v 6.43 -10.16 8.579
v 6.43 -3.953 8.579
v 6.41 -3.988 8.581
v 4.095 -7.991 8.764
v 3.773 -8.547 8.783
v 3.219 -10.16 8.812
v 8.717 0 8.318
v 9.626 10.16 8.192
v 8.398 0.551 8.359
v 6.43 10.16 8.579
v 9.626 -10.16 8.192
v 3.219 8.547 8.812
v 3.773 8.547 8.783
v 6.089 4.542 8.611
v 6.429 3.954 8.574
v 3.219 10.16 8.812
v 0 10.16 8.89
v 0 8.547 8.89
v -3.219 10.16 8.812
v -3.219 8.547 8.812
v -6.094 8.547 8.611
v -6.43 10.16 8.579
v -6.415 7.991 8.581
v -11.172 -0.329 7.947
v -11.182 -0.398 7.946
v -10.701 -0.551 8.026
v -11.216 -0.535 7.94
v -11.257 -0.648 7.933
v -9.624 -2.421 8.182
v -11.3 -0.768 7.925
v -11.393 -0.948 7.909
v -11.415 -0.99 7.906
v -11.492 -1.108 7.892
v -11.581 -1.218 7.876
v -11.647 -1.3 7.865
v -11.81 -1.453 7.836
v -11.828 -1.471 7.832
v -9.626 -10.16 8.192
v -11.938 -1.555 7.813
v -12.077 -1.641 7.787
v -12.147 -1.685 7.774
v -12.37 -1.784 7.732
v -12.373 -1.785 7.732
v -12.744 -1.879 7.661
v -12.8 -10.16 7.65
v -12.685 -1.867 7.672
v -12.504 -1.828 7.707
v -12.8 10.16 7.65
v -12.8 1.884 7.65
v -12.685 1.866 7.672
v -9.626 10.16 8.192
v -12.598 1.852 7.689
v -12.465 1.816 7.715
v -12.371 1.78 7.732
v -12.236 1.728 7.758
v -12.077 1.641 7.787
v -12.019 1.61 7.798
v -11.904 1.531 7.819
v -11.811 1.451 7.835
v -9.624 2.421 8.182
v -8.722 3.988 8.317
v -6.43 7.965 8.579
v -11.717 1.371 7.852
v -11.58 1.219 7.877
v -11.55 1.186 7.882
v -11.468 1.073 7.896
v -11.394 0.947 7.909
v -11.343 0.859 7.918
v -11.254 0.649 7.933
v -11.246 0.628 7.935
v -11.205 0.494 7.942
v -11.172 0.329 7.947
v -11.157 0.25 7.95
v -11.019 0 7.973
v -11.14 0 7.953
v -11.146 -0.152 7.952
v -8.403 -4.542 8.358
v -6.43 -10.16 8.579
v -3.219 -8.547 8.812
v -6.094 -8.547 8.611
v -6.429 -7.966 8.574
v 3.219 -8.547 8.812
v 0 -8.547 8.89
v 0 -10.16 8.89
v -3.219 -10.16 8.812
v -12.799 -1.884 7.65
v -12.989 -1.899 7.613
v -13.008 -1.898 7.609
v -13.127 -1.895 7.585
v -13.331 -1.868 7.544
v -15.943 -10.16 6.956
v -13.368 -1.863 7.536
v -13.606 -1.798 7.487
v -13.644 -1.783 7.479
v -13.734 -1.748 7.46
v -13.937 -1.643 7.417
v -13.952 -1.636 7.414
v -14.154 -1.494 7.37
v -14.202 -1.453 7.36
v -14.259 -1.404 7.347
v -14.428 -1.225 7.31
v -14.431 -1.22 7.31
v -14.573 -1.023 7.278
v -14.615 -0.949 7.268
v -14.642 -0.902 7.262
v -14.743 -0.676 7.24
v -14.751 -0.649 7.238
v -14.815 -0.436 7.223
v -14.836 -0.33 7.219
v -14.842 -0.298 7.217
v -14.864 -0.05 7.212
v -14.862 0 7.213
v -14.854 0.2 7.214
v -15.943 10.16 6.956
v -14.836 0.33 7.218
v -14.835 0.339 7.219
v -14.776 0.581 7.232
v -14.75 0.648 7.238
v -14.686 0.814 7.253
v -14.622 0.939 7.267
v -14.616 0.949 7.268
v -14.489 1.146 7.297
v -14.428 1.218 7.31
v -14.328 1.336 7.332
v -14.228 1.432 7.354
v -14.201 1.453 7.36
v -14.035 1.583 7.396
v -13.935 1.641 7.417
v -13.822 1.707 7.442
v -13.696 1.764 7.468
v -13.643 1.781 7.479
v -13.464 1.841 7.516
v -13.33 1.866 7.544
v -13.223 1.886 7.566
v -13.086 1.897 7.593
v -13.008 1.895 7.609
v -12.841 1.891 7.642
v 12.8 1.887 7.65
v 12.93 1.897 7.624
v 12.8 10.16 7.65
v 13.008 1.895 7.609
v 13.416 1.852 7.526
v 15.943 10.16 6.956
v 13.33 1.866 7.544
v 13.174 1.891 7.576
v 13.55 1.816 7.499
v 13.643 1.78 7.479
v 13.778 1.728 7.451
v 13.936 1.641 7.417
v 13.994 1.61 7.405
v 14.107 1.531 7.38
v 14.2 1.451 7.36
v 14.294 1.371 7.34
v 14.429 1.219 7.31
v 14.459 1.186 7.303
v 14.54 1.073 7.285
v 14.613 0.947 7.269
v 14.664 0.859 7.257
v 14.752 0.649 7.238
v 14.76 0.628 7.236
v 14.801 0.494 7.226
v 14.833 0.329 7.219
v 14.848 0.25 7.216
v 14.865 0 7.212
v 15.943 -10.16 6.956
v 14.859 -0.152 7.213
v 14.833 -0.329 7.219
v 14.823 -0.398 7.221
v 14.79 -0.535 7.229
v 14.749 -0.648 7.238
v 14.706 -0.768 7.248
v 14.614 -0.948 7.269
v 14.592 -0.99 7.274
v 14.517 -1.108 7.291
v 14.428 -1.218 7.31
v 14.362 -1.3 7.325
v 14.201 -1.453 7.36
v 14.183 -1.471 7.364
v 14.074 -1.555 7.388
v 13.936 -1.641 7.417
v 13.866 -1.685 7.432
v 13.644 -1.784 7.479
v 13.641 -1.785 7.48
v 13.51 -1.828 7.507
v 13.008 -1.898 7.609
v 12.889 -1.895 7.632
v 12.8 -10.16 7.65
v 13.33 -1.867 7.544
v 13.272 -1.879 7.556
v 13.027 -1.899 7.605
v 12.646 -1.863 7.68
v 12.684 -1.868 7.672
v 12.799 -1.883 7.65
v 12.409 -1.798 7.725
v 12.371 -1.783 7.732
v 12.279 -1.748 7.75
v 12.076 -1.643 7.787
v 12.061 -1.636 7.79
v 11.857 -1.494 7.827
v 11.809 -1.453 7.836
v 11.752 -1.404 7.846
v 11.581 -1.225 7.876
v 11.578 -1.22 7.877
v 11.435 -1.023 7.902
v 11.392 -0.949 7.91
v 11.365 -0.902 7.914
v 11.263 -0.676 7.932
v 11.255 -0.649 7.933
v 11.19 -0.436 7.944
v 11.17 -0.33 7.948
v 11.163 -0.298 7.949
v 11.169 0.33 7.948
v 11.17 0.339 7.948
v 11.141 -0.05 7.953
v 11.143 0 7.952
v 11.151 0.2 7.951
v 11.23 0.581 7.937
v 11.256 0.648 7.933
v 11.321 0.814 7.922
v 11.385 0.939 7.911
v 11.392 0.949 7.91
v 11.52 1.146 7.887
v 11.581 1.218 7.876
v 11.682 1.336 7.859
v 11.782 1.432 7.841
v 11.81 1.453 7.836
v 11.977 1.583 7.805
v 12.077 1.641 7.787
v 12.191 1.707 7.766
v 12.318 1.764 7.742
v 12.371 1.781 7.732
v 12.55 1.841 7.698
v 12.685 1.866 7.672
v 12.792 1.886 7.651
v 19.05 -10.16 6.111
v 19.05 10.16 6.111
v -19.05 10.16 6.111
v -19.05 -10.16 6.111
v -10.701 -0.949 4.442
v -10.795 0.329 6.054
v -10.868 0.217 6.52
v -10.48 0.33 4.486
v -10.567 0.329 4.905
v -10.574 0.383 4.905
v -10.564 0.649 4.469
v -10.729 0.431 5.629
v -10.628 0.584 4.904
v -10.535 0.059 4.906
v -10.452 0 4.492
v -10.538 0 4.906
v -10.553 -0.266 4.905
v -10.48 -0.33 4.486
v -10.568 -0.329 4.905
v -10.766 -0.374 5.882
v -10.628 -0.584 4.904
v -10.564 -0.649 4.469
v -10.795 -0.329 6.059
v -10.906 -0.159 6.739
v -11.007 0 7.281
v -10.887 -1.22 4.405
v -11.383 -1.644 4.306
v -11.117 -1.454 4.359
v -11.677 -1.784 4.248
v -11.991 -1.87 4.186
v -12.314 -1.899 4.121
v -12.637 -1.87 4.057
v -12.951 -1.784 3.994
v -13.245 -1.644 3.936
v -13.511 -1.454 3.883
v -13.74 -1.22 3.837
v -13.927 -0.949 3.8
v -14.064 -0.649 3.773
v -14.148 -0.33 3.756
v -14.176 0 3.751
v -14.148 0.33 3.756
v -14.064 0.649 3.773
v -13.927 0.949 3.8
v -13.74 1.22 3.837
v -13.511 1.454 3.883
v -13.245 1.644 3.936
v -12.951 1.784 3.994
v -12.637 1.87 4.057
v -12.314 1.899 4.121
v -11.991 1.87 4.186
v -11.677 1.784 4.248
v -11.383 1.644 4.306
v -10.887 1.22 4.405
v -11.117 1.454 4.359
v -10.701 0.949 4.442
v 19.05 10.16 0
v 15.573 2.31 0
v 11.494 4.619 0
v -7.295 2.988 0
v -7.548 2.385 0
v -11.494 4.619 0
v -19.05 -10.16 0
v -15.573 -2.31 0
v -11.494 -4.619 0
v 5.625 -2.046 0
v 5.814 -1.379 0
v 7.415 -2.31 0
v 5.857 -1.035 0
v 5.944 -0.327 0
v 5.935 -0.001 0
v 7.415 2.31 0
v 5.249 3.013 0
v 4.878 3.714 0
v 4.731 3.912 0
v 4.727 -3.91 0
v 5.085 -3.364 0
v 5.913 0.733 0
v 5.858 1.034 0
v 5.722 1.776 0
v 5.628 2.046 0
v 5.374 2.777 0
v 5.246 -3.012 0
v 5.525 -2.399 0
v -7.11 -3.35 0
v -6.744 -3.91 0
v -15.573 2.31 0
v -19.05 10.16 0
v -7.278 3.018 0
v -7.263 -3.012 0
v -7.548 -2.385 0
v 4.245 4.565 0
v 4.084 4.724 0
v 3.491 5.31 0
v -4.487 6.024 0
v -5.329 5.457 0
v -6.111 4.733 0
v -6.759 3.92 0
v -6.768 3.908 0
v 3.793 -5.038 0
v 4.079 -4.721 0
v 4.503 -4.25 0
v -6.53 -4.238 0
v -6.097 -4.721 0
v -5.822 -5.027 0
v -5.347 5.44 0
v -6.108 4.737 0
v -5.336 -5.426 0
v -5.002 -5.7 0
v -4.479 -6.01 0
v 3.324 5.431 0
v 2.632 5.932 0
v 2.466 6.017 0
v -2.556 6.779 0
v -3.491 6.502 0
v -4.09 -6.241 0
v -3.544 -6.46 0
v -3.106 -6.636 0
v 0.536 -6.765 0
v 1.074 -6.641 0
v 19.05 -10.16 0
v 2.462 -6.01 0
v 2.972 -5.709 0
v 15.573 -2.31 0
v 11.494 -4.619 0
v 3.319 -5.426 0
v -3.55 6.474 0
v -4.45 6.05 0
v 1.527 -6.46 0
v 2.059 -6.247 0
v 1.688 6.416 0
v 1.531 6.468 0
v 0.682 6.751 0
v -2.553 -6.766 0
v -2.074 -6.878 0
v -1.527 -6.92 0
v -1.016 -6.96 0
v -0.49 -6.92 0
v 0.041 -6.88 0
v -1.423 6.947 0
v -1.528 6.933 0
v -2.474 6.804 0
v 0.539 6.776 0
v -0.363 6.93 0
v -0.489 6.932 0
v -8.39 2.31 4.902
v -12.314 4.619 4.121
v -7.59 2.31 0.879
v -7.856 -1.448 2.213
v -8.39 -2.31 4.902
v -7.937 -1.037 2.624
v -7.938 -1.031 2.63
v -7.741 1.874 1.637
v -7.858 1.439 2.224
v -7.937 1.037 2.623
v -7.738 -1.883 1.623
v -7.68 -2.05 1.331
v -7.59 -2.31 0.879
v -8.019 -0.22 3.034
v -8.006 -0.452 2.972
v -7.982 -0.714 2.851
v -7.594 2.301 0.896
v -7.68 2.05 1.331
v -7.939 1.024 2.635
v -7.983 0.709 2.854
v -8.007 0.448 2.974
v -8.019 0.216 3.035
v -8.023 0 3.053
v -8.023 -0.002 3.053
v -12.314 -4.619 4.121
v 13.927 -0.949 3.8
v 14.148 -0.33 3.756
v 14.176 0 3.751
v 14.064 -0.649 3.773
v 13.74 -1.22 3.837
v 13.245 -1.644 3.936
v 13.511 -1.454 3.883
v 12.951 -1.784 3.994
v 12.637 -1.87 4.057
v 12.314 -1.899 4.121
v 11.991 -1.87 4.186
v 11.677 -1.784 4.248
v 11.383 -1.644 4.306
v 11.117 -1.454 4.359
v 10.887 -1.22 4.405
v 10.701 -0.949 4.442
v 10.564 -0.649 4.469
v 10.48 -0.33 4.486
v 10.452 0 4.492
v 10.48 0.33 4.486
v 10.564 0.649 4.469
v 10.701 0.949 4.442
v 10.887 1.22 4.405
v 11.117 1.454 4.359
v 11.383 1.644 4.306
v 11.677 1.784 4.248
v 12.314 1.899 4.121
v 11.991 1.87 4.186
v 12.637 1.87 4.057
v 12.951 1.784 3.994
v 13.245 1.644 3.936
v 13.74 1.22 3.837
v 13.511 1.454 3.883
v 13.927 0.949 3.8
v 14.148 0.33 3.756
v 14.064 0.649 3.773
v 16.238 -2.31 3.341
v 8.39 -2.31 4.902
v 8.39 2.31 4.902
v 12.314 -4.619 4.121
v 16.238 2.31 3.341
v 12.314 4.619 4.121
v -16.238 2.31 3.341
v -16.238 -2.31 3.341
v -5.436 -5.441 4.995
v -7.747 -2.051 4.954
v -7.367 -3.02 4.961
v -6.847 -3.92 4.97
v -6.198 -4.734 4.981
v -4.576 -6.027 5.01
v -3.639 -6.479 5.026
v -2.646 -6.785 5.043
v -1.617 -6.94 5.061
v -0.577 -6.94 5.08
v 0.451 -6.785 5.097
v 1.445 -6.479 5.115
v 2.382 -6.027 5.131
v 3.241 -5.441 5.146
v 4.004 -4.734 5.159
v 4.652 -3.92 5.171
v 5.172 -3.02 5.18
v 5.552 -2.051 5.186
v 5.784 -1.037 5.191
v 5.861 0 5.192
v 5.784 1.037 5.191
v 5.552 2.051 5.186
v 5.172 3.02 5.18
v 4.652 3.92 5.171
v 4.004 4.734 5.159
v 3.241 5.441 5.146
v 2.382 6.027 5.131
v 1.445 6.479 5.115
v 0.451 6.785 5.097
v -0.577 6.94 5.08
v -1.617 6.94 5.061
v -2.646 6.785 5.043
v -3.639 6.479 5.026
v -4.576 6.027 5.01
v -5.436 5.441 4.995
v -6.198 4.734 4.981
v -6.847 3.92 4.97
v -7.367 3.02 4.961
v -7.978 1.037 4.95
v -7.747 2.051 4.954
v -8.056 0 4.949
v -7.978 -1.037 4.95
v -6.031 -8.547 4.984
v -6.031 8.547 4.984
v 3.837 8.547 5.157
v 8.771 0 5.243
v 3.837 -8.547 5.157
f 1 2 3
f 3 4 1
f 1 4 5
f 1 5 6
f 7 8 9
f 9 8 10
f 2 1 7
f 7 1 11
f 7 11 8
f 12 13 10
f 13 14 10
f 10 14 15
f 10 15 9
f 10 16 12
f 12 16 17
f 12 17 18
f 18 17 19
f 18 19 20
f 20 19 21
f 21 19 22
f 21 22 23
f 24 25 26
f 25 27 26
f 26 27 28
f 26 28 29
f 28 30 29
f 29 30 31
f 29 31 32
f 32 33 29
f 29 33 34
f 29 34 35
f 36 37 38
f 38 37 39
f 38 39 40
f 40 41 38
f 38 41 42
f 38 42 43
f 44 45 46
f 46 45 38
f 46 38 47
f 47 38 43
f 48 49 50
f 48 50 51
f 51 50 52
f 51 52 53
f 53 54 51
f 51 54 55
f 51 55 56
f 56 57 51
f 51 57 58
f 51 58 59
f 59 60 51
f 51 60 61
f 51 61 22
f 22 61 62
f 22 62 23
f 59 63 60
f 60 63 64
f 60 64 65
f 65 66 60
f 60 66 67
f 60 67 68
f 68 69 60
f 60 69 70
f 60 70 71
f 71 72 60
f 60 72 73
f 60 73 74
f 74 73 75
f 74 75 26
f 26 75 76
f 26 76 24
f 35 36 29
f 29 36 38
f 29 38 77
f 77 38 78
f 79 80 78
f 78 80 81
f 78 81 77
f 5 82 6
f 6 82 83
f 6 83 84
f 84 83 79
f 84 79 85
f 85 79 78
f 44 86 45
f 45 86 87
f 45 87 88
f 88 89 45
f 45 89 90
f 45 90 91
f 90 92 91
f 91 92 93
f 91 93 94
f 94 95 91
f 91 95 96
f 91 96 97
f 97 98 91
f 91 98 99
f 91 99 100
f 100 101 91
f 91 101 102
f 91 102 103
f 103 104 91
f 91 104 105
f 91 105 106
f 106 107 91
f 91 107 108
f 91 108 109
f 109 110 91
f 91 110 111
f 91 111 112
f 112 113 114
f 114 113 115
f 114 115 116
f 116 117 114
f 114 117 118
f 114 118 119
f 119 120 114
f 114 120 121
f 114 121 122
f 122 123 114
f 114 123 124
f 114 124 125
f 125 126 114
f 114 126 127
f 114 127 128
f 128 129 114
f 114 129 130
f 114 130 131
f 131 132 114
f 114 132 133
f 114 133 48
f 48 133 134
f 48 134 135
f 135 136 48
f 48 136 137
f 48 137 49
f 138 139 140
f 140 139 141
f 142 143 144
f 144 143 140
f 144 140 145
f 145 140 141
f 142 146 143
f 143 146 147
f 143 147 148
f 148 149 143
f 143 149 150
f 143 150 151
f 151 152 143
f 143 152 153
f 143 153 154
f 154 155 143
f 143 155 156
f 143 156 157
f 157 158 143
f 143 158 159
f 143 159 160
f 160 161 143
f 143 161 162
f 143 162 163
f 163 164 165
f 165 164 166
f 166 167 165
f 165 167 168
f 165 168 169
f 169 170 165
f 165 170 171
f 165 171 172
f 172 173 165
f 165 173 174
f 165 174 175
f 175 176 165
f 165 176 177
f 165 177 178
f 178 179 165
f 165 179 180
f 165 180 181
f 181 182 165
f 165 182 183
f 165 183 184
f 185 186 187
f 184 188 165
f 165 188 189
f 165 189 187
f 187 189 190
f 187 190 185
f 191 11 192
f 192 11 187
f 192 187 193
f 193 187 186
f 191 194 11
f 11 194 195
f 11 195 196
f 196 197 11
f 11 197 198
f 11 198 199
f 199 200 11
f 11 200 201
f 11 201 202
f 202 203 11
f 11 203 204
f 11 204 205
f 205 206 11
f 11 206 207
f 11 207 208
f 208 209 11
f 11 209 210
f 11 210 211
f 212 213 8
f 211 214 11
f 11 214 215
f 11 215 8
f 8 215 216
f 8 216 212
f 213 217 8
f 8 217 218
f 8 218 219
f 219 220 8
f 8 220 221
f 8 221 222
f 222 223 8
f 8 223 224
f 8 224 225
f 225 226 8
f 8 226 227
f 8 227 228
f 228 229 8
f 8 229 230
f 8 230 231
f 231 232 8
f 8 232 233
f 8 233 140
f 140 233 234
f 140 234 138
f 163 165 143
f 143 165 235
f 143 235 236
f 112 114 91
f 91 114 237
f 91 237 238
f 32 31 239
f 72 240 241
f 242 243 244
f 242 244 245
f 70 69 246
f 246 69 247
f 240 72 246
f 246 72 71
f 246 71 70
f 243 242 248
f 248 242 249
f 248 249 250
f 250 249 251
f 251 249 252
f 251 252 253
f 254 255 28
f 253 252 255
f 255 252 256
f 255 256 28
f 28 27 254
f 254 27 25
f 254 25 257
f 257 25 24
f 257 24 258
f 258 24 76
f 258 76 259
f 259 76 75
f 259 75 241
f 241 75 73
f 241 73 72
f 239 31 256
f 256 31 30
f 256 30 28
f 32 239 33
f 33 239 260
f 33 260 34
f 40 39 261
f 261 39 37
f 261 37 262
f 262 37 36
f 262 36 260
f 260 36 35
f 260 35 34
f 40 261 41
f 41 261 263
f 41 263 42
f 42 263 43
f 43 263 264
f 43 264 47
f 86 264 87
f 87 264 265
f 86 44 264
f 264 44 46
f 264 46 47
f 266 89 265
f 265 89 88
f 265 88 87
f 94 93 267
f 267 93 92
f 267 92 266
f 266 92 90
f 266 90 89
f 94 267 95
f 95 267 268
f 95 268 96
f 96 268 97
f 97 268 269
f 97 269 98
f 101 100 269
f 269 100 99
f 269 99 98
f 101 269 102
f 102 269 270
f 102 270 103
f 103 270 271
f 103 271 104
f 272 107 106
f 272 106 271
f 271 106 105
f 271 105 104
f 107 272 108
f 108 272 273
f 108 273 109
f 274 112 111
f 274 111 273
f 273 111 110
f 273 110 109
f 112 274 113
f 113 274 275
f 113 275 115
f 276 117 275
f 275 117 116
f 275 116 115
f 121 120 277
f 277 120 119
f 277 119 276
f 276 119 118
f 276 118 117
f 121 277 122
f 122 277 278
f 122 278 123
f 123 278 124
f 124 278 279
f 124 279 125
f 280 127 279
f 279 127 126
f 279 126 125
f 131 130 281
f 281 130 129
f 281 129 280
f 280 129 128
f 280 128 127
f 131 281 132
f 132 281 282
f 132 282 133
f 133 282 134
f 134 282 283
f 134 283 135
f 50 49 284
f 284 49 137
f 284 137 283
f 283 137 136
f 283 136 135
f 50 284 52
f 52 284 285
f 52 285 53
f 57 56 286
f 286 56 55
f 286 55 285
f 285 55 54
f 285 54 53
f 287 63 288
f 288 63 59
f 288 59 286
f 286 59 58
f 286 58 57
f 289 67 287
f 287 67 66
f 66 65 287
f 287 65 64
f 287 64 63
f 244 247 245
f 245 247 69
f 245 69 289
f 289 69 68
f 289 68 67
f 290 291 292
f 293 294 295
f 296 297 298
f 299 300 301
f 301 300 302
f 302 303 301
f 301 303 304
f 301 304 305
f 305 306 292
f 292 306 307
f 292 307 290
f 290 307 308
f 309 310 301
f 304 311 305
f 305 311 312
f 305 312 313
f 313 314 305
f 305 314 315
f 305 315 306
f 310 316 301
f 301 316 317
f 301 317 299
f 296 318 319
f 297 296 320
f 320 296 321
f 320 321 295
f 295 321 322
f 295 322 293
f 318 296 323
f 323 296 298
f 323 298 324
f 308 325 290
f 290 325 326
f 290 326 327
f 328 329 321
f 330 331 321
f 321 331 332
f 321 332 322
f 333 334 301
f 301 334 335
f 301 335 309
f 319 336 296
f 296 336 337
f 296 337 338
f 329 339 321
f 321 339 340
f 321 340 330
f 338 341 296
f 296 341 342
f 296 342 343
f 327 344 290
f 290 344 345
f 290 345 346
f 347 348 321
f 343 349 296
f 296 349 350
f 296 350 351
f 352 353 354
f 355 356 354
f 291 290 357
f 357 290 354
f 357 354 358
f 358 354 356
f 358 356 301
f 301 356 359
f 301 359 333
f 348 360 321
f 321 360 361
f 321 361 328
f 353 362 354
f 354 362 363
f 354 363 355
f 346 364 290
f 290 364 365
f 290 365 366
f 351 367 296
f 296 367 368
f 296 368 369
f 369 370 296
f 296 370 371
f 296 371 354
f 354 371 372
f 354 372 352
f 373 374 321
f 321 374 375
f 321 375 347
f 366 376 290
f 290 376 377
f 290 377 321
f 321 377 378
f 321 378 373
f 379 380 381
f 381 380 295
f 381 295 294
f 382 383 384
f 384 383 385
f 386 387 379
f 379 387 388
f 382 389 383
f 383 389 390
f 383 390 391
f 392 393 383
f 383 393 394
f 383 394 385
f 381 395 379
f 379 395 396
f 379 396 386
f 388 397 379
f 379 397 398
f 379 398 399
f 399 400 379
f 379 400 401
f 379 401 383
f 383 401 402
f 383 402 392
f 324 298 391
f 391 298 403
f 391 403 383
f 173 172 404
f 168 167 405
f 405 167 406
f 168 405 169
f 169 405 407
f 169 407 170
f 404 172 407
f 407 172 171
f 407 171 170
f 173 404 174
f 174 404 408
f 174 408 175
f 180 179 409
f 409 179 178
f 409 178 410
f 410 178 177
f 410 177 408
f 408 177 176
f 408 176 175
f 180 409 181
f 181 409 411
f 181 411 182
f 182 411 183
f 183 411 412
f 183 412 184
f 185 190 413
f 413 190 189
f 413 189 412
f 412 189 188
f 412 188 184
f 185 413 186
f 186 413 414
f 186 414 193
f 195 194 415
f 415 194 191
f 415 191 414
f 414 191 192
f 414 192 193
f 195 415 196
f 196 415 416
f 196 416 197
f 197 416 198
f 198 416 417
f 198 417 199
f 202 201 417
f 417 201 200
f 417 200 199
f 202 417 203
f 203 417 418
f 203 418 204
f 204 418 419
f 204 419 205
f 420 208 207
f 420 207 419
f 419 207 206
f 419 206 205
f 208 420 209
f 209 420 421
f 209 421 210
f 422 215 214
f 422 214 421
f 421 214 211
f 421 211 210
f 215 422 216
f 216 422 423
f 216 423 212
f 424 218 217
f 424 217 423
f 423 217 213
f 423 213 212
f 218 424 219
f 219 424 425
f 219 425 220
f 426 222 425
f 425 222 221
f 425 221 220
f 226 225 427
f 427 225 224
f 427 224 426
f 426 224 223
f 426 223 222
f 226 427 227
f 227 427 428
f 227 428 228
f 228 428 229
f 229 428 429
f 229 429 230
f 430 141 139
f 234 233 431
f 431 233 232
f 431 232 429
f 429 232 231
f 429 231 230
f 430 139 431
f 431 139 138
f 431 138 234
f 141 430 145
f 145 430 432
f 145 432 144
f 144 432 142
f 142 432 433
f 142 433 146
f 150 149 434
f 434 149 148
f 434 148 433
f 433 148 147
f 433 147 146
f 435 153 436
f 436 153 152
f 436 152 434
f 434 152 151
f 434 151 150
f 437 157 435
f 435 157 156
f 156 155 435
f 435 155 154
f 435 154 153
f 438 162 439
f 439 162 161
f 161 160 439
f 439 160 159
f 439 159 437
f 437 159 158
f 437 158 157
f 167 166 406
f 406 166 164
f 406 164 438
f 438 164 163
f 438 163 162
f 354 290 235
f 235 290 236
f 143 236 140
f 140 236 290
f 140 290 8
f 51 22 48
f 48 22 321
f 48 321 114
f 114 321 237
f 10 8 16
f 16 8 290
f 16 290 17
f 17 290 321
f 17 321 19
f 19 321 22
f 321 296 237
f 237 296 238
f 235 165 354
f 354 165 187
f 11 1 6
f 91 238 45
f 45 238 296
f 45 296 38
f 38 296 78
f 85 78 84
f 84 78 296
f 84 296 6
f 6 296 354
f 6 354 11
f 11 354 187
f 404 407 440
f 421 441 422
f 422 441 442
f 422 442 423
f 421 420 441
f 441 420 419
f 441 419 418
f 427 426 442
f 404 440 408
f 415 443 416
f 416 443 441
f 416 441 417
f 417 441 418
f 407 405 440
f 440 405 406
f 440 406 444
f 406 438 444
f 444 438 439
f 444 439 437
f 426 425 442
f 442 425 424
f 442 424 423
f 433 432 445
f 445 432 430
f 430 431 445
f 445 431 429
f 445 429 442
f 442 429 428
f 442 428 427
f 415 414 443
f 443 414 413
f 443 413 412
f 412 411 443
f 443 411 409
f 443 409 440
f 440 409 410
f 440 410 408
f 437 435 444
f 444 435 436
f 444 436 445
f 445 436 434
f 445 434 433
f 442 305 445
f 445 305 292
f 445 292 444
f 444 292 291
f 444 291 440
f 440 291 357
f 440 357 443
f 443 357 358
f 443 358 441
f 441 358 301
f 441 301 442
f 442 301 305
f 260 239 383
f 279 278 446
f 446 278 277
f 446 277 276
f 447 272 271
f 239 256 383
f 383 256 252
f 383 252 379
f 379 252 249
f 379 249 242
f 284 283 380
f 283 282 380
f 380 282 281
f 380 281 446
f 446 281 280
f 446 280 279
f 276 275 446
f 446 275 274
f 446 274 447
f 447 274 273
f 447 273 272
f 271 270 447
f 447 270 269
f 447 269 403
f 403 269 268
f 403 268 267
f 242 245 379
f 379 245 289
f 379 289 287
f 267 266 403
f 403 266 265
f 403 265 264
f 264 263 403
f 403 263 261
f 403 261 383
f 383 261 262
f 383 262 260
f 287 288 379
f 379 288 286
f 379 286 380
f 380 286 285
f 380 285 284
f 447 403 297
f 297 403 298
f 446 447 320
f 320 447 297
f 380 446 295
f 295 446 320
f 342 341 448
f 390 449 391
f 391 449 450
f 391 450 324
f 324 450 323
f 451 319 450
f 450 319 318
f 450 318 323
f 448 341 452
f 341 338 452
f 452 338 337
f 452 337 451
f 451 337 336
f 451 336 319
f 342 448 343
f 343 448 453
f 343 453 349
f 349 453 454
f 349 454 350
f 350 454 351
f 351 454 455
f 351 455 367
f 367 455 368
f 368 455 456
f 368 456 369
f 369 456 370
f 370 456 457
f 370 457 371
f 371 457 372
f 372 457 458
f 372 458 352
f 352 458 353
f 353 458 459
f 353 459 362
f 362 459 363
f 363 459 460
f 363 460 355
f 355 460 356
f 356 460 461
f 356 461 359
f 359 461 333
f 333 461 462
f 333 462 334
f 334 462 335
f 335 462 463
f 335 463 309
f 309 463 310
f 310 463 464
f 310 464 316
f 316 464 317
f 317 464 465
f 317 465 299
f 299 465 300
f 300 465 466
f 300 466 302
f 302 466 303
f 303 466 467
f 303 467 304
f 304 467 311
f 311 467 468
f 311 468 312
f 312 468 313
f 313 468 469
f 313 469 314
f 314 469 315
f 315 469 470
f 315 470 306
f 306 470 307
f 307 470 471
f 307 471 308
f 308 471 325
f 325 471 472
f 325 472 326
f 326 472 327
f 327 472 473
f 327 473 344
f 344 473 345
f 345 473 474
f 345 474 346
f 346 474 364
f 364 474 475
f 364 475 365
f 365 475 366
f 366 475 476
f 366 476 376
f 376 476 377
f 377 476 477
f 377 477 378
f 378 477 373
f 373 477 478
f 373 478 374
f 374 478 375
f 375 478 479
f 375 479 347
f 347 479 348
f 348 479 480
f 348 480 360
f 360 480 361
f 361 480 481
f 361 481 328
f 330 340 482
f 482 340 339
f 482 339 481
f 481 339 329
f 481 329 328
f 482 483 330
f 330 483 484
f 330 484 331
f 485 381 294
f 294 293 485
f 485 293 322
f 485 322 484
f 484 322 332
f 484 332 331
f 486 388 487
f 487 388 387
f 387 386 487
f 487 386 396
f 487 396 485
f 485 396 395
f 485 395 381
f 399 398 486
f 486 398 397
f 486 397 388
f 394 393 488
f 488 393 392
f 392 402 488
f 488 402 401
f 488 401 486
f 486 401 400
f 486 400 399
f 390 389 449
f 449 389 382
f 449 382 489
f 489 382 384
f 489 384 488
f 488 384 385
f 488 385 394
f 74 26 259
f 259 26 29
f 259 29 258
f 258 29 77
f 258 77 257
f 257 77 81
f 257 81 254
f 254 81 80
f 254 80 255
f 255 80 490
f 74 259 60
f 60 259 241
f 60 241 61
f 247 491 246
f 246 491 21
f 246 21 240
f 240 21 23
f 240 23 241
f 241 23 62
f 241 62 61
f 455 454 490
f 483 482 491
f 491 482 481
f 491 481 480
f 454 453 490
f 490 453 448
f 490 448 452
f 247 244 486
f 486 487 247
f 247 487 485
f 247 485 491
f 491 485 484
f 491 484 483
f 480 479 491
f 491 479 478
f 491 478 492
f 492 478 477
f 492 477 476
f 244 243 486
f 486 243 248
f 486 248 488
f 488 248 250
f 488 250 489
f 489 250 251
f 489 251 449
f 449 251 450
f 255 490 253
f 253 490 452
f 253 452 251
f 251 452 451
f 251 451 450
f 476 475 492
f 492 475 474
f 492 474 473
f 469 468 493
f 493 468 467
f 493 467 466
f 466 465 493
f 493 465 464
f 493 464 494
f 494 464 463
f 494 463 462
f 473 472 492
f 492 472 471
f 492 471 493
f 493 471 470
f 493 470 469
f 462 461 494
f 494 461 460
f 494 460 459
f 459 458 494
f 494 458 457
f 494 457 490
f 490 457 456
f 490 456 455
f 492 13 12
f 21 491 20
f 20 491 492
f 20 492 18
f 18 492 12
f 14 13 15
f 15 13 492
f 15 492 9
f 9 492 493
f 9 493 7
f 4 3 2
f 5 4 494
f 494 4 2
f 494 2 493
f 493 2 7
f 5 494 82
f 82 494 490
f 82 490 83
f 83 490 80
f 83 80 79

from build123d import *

# Parameters (mm, degrees)
SKETCH1_W           = 38.1
SKETCH1_H           = 20.32
BOSS_EXTRUDE1_DEPTH = 8.89
CUT_EXTRUDE3_START  = -20.32
CUT_EXTRUDE3_DEPTH  = 20.32
CUT_EXTRUDE5_DEPTH  = 42.856889745
SKETCH15_R          = 6.9596
CUT_EXTRUDE7_DEPTH  = 31.005753887
CUT_EXTRUDE8_DEPTH  = 3.81


# Read off the part's stored shape, not the designer's step: Cut-Extrude3
with BuildPart() as part:
    # Sketch1 → Boss-Extrude1 (new body)
    with BuildSketch(Plane.XY):
        Rectangle(SKETCH1_W, SKETCH1_H)
    extrude(amount=BOSS_EXTRUDE1_DEPTH)

    # Cut-Extrude3 outline → Cut-Extrude3 (cut)
    with BuildSketch(Plane(origin=(0, 10.16, 0), x_dir=(1, 0, 0), z_dir=(0, 1, 0)).offset(CUT_EXTRUDE3_START)):
        with BuildLine():
            ThreePointArc((19.05, -6.110642457), (9.62584189, -8.191501824), (0, -8.89))
            Line((0, -8.89), (19.05, -8.89))
            Line((19.05, -8.89), (19.05, -6.110642457))
        make_face()
        with BuildLine():
            ThreePointArc((0, -8.89), (-9.62584189, -8.191501824), (-19.05, -6.110642457))
            Line((-19.05, -6.110642457), (-19.05, -8.89))
            Line((-19.05, -8.89), (0, -8.89))
        make_face()
    extrude(amount=CUT_EXTRUDE3_DEPTH, mode=Mode.SUBTRACT)

    # Sketch12 → #6 Clearance Hole2 (revolve, cut)
    with BuildSketch(Plane(origin=(13.00764722, 0, 7.608858571), x_dir=(0.9807852804032313, 0, -0.19509032201612442), z_dir=(0, 1, 0))):
        Polygon((0, 0), (0, 13.840824014), (1.89865, 12.7), (1.89865, 0), align=None)
    f_6_clearance_hole2 = revolve(axis=Axis((14.246470765, 0, 13.836845101), (-0.19509032201612442, 0, -0.9807852804032313)), mode=Mode.SUBTRACT)

    # Sketch14 → Cut-Extrude5 (cut, through all)
    with BuildSketch(Plane(origin=(12.313906035, -17.145, 4.121186114), x_dir=(-0.9807852804032313, 0, 0.19509032201612445), z_dir=(-0.19509032201612445, 0, -0.9807852804032313))):
        Polygon((0, 21.764379504), (-4.0005, 19.454689752), (-4.0005, 14.835310248), (0, 12.525620496), (4.0005, 14.835310248), (4.0005, 19.454689752), align=None)
    cut_extrude5 = extrude(amount=CUT_EXTRUDE5_DEPTH, mode=Mode.SUBTRACT)

    # Mirror1: #6 Clearance Hole2, Cut-Extrude5 across plane
    add(f_6_clearance_hole2.mirror(Plane(origin=(0, 0, 0), x_dir=(0, 0, 1), z_dir=(1, 0, 0))), mode=Mode.SUBTRACT)
    add(cut_extrude5.mirror(Plane(origin=(0, 0, 0), x_dir=(0, 0, 1), z_dir=(1, 0, 0))), mode=Mode.SUBTRACT)

    # Sketch15 → Cut-Extrude7 (cut, through all)
    with BuildSketch(Plane(origin=(-1.163639199, -10.16, 8.879845075), x_dir=(-0.9998476951563913, 0, -0.017452406437284837), z_dir=(0.017452406437284837, 0, -0.9998476951563913))):
        with Locations(Location((0, 10.16, 0), (0, 0, 180))):
            Circle(SKETCH15_R)
    extrude(amount=CUT_EXTRUDE7_DEPTH, mode=Mode.SUBTRACT)

    # Sketch16 → Cut-Extrude8 (cut)
    with BuildSketch(Plane(origin=(-1.163639199, -10.16, 8.879845075), x_dir=(-0.9998476951563913, 0, -0.017452406437284837), z_dir=(0.017452406437284837, 0, -0.9998476951563913))):
        Polygon((-4.934670486, 18.7071), (-9.869340972, 10.16), (-4.934670486, 1.6129), (4.934670486, 1.6129), (9.869340972, 10.16), (4.934670486, 18.7071), align=None)
    extrude(amount=CUT_EXTRUDE8_DEPTH, mode=Mode.SUBTRACT)


solid = part.part
